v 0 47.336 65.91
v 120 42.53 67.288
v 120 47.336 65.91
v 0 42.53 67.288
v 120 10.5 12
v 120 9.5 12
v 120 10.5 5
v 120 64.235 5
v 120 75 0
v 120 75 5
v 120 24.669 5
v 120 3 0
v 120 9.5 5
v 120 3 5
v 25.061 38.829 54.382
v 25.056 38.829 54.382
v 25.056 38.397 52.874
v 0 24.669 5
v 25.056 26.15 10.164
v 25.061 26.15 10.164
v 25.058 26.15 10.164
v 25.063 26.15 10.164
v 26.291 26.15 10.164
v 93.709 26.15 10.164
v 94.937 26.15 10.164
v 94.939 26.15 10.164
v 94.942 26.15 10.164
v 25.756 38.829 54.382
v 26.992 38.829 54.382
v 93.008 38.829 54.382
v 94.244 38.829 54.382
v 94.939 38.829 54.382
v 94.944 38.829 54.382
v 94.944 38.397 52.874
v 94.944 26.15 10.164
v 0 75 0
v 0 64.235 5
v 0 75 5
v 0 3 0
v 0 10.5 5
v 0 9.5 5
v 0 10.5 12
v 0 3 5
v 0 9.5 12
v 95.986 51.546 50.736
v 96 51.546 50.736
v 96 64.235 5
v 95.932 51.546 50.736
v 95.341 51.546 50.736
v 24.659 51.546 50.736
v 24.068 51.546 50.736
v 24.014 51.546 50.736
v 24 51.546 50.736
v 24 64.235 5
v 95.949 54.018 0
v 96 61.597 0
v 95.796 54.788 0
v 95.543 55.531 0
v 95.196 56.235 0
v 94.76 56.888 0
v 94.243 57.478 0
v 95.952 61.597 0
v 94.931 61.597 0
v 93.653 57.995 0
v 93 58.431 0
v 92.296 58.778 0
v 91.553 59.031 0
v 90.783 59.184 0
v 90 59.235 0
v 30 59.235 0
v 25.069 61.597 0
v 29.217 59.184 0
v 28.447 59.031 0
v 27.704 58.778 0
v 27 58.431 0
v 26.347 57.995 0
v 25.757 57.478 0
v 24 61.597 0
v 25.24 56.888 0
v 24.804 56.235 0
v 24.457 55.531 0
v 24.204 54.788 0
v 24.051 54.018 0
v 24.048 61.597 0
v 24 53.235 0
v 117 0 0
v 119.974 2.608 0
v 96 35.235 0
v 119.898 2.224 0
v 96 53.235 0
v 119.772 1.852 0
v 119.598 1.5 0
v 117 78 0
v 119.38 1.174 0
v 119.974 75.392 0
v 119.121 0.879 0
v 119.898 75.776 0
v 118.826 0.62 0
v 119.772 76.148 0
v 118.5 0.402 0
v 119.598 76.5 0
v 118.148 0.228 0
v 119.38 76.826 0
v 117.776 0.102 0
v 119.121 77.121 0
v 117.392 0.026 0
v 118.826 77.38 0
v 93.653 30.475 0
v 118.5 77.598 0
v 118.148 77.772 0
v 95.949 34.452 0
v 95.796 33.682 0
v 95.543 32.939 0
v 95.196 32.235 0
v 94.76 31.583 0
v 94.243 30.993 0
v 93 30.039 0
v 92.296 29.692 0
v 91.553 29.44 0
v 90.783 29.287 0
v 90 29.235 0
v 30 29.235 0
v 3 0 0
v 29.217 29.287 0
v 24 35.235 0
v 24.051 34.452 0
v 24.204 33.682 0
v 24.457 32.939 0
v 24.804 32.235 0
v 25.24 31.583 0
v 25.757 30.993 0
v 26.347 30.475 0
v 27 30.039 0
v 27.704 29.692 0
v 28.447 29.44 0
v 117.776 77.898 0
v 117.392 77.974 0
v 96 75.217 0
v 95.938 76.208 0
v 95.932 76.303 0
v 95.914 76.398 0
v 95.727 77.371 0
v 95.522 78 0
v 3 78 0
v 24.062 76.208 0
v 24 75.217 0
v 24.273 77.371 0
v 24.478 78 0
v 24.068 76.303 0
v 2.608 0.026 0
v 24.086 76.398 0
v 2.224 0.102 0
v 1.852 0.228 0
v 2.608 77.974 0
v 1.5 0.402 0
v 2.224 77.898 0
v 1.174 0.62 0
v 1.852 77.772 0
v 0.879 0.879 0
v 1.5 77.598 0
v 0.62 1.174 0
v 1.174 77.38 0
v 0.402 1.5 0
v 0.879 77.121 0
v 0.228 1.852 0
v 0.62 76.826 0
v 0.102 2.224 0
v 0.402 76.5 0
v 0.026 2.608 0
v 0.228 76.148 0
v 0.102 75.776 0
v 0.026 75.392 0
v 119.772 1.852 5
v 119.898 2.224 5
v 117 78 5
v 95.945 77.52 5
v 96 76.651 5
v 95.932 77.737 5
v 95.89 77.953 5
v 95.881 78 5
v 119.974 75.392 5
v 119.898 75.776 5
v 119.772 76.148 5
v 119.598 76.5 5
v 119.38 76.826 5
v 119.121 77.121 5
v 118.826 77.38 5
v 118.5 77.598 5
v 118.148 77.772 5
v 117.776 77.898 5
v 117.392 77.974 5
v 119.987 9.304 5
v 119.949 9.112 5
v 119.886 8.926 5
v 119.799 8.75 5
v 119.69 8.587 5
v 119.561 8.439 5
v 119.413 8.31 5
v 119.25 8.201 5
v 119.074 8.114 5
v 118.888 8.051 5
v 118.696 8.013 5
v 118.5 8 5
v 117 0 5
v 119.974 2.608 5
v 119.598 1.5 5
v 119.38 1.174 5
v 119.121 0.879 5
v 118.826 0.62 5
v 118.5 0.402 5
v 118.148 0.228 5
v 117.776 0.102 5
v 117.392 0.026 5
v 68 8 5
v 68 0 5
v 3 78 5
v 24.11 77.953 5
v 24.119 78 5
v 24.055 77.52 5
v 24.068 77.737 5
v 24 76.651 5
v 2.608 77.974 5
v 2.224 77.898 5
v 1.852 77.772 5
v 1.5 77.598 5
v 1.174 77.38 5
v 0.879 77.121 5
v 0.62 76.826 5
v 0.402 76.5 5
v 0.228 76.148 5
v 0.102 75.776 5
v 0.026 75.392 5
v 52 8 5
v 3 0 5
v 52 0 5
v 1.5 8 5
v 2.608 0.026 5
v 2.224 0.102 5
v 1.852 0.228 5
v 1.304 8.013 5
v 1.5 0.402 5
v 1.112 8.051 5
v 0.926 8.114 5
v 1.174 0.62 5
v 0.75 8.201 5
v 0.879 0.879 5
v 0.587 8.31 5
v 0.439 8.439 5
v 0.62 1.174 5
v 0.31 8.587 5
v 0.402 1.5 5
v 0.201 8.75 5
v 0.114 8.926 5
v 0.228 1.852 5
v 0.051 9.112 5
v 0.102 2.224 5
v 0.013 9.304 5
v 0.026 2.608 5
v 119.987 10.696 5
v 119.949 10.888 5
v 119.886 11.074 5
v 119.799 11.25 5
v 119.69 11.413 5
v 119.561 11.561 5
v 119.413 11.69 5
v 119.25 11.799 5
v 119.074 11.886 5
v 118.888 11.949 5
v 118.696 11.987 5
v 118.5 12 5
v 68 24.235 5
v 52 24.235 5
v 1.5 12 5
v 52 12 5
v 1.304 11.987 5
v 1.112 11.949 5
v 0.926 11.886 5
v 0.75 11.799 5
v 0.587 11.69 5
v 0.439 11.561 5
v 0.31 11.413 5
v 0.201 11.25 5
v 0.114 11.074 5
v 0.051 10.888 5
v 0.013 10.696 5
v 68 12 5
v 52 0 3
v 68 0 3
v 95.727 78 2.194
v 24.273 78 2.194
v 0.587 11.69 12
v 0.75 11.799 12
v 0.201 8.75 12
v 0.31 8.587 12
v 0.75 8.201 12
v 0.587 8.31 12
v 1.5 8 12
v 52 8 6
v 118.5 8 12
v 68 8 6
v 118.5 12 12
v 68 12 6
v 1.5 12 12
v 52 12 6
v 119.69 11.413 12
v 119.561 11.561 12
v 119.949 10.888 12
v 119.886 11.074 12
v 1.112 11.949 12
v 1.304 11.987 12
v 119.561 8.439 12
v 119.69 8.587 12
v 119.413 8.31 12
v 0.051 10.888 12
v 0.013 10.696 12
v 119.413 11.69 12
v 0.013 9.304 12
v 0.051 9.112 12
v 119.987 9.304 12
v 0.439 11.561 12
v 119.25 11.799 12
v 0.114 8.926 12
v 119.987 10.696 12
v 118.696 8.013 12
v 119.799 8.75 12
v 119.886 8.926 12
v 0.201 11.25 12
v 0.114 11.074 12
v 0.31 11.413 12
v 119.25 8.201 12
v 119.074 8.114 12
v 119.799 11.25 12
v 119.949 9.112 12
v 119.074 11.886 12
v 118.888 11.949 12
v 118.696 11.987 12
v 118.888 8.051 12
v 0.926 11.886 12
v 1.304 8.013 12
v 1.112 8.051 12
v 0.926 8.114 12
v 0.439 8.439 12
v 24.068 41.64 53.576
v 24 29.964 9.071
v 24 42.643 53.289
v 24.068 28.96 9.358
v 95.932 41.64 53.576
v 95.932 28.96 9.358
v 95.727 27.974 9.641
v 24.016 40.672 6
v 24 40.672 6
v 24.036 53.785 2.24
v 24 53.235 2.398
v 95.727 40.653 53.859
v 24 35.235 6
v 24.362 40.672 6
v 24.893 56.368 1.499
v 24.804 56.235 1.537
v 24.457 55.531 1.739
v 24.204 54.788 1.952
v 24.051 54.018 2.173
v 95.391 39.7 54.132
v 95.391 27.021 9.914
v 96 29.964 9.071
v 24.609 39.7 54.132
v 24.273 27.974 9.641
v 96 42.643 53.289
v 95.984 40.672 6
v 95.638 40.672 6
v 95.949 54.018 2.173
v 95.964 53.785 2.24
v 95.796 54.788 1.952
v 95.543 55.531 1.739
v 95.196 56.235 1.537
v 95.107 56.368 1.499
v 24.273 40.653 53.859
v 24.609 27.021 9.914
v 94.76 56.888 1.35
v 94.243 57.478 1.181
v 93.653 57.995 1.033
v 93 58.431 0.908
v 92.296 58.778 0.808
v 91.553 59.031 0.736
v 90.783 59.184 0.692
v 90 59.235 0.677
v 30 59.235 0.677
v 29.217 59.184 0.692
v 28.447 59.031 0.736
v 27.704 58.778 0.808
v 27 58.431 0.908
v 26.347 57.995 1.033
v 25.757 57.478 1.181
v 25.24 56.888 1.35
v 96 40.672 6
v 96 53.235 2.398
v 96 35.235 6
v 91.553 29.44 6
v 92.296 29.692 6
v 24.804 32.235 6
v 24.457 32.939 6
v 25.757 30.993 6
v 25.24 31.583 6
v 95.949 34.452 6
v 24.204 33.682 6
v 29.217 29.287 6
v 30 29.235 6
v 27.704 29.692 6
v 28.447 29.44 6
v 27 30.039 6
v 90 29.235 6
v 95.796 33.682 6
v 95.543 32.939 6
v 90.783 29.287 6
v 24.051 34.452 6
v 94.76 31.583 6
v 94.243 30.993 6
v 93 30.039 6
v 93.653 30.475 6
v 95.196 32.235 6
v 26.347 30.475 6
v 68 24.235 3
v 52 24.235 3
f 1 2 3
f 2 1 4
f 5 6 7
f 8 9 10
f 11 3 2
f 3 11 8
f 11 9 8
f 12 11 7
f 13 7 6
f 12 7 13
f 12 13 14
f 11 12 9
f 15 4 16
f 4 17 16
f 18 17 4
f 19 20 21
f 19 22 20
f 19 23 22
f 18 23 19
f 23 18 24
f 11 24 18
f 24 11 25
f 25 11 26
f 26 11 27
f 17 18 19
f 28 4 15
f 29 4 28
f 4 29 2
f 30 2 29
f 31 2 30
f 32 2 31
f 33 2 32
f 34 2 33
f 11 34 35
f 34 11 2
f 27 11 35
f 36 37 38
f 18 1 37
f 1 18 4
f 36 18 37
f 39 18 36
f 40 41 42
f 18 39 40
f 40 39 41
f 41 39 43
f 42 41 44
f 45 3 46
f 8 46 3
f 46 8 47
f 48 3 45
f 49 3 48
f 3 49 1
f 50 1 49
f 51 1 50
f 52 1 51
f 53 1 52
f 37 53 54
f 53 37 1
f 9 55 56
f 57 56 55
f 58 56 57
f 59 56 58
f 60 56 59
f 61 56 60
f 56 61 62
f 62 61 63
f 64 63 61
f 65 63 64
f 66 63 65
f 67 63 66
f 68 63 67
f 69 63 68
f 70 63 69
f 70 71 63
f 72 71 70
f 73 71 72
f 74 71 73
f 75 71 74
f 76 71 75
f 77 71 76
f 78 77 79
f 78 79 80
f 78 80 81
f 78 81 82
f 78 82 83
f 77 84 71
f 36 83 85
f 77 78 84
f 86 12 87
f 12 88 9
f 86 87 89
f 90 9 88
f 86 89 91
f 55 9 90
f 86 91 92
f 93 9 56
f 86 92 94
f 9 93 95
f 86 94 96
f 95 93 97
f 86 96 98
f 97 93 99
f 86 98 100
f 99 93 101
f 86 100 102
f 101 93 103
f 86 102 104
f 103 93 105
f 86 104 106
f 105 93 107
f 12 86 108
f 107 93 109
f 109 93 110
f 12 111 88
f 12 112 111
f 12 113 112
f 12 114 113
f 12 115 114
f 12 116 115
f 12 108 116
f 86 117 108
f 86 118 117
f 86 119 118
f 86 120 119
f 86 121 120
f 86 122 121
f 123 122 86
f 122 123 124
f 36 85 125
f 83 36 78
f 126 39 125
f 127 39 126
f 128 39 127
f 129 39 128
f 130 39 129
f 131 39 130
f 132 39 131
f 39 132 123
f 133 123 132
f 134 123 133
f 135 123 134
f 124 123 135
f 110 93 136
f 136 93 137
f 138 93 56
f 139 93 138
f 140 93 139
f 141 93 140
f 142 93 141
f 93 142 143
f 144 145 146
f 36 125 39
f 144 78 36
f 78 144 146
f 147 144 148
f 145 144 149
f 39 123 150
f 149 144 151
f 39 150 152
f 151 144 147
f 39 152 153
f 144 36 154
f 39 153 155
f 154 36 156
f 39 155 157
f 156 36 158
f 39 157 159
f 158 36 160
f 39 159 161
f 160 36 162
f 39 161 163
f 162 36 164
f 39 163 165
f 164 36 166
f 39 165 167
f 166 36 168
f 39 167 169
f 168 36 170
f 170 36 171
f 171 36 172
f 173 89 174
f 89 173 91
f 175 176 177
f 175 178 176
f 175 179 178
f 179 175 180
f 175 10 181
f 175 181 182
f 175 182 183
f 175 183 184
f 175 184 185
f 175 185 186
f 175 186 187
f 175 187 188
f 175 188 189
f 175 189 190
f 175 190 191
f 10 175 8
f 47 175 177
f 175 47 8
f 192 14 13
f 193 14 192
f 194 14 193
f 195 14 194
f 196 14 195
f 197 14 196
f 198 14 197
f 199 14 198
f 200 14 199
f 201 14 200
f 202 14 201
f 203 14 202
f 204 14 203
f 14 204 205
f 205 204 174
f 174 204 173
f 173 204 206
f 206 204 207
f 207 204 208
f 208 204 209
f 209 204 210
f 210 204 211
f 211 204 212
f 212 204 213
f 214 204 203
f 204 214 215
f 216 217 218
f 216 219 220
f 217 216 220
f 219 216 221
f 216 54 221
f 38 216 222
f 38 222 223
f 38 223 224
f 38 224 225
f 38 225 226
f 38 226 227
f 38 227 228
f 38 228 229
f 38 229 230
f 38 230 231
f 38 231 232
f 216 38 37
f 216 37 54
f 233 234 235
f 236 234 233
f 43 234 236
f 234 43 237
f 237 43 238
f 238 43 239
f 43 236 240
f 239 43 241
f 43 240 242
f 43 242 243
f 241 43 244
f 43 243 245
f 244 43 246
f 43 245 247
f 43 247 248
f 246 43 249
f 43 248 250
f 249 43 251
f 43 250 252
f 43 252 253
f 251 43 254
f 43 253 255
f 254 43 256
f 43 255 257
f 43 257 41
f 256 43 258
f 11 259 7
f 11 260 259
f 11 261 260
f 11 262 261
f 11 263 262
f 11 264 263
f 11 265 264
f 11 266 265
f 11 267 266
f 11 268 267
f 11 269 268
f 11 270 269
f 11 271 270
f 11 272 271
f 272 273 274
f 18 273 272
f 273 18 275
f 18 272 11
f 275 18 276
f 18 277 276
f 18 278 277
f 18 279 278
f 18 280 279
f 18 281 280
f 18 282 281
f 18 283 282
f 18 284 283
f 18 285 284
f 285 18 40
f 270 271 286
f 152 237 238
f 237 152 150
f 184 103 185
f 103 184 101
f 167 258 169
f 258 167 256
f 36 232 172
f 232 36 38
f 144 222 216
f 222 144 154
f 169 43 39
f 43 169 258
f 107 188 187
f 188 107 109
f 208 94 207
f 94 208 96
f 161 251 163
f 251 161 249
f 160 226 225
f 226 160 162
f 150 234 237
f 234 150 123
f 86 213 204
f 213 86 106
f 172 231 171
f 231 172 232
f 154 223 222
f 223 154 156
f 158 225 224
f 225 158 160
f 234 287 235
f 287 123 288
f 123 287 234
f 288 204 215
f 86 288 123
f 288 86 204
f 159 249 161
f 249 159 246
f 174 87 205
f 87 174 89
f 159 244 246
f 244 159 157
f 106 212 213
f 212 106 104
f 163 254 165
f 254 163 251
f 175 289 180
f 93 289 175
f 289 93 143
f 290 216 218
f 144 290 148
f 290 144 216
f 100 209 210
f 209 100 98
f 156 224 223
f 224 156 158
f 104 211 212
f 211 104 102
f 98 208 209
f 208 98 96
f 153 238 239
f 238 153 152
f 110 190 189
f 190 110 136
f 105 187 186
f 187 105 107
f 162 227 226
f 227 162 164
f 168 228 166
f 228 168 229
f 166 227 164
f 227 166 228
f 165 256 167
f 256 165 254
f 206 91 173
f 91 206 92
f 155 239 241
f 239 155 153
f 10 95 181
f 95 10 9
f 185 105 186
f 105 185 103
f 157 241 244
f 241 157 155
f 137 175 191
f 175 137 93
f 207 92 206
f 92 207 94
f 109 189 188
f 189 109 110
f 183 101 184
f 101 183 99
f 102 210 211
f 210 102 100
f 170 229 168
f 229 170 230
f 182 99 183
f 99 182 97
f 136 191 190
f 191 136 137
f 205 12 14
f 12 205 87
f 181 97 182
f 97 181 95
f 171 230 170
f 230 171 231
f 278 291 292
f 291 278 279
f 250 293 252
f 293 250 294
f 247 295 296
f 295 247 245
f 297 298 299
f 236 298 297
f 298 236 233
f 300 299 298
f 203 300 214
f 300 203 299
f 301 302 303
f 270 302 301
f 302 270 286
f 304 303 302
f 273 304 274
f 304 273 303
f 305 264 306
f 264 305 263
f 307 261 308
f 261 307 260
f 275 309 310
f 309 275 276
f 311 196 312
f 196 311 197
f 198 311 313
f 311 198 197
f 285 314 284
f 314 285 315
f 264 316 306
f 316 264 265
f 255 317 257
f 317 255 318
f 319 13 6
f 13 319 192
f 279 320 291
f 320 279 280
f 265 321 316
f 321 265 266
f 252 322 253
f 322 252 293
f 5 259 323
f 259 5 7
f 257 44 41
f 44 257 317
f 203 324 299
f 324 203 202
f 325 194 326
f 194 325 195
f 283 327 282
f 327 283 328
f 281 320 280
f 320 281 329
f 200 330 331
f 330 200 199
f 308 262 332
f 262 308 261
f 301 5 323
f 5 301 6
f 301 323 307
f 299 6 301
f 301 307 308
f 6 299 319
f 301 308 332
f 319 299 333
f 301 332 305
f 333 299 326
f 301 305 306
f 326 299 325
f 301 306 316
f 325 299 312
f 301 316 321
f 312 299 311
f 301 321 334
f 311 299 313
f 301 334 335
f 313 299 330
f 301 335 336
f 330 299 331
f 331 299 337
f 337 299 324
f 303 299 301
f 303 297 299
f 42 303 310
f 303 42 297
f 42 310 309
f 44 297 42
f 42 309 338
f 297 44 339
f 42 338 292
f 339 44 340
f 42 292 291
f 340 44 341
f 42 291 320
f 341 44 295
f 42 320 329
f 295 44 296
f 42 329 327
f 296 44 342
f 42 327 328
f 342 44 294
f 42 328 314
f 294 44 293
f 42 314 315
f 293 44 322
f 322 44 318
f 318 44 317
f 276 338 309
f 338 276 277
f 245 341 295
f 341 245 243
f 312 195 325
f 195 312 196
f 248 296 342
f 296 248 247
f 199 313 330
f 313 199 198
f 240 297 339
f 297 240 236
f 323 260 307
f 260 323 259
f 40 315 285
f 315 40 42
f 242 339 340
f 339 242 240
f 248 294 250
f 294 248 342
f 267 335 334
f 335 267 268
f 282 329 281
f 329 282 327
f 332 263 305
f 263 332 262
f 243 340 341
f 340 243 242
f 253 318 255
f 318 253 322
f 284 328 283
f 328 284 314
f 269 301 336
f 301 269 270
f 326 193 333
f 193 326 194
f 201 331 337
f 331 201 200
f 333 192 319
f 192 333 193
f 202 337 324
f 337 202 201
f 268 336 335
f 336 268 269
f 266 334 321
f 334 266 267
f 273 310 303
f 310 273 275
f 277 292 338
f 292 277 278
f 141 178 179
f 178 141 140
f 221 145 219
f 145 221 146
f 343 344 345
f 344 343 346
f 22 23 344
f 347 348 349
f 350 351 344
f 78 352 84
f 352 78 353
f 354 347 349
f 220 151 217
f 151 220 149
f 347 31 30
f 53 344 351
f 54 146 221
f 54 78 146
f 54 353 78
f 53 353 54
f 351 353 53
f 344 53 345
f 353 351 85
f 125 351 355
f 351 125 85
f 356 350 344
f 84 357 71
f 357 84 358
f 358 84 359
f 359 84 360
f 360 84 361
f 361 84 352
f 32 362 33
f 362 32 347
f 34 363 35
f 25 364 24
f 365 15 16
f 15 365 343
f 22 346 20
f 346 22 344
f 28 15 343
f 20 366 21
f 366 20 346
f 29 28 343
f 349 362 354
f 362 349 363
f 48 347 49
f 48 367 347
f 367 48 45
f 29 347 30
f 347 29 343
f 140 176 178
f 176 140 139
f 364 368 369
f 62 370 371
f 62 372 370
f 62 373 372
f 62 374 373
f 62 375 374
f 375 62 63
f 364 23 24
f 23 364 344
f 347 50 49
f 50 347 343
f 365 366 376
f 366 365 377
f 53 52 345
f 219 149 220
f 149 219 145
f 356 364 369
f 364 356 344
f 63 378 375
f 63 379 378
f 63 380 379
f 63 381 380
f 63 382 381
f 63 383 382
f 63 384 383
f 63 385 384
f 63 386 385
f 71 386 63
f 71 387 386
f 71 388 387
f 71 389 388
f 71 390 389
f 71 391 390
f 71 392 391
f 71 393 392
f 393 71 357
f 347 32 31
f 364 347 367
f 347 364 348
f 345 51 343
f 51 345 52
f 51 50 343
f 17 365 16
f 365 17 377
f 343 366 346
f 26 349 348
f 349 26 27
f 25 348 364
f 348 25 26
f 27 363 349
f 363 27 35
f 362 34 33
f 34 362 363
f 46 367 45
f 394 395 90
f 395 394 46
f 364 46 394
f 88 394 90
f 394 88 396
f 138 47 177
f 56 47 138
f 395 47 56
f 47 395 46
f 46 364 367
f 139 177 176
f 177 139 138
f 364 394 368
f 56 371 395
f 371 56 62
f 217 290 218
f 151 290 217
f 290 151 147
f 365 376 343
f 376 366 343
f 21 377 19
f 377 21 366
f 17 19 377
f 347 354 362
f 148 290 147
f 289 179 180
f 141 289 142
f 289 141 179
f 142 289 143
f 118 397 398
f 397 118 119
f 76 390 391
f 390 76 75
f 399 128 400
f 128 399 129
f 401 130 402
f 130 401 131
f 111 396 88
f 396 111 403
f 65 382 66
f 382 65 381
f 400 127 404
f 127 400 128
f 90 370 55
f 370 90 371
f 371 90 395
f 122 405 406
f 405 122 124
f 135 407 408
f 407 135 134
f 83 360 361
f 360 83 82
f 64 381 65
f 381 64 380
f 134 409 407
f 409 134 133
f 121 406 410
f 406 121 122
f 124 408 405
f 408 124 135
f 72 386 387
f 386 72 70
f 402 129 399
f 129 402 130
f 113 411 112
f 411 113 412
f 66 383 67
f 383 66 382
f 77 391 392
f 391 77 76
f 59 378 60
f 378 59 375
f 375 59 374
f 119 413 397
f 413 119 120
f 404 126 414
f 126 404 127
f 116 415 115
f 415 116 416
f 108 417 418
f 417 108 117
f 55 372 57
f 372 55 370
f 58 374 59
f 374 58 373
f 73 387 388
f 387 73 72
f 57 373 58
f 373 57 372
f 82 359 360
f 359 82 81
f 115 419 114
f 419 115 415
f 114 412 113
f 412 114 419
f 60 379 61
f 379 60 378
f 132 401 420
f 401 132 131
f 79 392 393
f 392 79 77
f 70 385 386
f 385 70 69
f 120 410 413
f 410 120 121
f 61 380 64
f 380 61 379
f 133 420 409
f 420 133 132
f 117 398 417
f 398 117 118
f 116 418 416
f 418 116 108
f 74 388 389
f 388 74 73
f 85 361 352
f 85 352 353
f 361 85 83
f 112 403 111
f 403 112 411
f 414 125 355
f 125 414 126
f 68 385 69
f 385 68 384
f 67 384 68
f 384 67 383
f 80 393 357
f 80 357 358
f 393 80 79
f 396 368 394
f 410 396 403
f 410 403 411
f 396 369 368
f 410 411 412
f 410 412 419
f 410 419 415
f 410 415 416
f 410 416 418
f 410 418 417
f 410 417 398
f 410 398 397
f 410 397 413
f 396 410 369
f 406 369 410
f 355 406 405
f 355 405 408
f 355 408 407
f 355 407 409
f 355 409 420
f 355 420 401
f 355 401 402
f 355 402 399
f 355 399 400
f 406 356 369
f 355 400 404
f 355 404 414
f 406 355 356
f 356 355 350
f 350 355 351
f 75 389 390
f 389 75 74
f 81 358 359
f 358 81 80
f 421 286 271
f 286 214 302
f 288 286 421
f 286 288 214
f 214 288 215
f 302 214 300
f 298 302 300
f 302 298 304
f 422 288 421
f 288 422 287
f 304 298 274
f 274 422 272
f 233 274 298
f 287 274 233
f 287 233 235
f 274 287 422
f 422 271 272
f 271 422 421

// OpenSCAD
// Stand for the Fire 7 (7th gen, 2017, "austin"): 192 x 115 x 9.6 mm. Holds it landscape, leaning back,
// with the front camera clear and an open back so the always-plugged battery stays cool.
// Print on its side? No: print it as modelled (base down), 0.2 mm layers, 15–20% infill, no supports.
$fn = 48;
tab_t  = 9.6;        // tablet thickness (add your case, if any)
tol    = 1.2;
lean   = 16;         // degrees back from vertical
width  = 120;        // stand width (the tablet is 192 wide in landscape; its centre sits here)
base   = [width, 78, 5];
lip_h  = 7;          // front lip: only covers the bezel
back_h = 70;         // height of the back support
cable  = true;       // slot for a USB cable to pass under the tablet

slot = (tab_t + tol) / cos(lean);
lip_y = 8;
module rounded(s, r = 3) { hull() for (x = [r, s[0] - r], y = [r, s[1] - r]) translate([x, y, 0]) cylinder(r = r, h = s[2]); }

difference() {
  union() {
    rounded(base);
    translate([0, lip_y, 0]) rounded([width, 4, base[2] + lip_h], 1.5);                       // front lip
    // back support: a leaning slab with a brace to the base
    translate([0, lip_y + 4 + slot, 0]) intersection() {
      hull() {
        rotate([-lean, 0, 0]) cube([width, 5, back_h]);
        translate([0, 40, 0]) cube([width, 1, base[2]]);
      }
      translate([0, -50, 0]) cube([width, 200, 200]);
    }
  }
  // lighten + cool: a big window through the brace
  translate([width * .2, lip_y + 4 + slot, base[2] + 6]) rotate([-lean, 0, 0]) translate([0, -1, 0]) rounded([width * .6, 62, back_h - 24], 8);
  translate([width * .2, lip_y + 4 + slot + 6, -1]) rounded([width * .6, 30, base[2] + 2], 6);
  // cable slot
  if (cable) translate([width / 2 - 8, -1, base[2] - 2]) cube([16, lip_y + 4 + slot + 2, 3]);
}
